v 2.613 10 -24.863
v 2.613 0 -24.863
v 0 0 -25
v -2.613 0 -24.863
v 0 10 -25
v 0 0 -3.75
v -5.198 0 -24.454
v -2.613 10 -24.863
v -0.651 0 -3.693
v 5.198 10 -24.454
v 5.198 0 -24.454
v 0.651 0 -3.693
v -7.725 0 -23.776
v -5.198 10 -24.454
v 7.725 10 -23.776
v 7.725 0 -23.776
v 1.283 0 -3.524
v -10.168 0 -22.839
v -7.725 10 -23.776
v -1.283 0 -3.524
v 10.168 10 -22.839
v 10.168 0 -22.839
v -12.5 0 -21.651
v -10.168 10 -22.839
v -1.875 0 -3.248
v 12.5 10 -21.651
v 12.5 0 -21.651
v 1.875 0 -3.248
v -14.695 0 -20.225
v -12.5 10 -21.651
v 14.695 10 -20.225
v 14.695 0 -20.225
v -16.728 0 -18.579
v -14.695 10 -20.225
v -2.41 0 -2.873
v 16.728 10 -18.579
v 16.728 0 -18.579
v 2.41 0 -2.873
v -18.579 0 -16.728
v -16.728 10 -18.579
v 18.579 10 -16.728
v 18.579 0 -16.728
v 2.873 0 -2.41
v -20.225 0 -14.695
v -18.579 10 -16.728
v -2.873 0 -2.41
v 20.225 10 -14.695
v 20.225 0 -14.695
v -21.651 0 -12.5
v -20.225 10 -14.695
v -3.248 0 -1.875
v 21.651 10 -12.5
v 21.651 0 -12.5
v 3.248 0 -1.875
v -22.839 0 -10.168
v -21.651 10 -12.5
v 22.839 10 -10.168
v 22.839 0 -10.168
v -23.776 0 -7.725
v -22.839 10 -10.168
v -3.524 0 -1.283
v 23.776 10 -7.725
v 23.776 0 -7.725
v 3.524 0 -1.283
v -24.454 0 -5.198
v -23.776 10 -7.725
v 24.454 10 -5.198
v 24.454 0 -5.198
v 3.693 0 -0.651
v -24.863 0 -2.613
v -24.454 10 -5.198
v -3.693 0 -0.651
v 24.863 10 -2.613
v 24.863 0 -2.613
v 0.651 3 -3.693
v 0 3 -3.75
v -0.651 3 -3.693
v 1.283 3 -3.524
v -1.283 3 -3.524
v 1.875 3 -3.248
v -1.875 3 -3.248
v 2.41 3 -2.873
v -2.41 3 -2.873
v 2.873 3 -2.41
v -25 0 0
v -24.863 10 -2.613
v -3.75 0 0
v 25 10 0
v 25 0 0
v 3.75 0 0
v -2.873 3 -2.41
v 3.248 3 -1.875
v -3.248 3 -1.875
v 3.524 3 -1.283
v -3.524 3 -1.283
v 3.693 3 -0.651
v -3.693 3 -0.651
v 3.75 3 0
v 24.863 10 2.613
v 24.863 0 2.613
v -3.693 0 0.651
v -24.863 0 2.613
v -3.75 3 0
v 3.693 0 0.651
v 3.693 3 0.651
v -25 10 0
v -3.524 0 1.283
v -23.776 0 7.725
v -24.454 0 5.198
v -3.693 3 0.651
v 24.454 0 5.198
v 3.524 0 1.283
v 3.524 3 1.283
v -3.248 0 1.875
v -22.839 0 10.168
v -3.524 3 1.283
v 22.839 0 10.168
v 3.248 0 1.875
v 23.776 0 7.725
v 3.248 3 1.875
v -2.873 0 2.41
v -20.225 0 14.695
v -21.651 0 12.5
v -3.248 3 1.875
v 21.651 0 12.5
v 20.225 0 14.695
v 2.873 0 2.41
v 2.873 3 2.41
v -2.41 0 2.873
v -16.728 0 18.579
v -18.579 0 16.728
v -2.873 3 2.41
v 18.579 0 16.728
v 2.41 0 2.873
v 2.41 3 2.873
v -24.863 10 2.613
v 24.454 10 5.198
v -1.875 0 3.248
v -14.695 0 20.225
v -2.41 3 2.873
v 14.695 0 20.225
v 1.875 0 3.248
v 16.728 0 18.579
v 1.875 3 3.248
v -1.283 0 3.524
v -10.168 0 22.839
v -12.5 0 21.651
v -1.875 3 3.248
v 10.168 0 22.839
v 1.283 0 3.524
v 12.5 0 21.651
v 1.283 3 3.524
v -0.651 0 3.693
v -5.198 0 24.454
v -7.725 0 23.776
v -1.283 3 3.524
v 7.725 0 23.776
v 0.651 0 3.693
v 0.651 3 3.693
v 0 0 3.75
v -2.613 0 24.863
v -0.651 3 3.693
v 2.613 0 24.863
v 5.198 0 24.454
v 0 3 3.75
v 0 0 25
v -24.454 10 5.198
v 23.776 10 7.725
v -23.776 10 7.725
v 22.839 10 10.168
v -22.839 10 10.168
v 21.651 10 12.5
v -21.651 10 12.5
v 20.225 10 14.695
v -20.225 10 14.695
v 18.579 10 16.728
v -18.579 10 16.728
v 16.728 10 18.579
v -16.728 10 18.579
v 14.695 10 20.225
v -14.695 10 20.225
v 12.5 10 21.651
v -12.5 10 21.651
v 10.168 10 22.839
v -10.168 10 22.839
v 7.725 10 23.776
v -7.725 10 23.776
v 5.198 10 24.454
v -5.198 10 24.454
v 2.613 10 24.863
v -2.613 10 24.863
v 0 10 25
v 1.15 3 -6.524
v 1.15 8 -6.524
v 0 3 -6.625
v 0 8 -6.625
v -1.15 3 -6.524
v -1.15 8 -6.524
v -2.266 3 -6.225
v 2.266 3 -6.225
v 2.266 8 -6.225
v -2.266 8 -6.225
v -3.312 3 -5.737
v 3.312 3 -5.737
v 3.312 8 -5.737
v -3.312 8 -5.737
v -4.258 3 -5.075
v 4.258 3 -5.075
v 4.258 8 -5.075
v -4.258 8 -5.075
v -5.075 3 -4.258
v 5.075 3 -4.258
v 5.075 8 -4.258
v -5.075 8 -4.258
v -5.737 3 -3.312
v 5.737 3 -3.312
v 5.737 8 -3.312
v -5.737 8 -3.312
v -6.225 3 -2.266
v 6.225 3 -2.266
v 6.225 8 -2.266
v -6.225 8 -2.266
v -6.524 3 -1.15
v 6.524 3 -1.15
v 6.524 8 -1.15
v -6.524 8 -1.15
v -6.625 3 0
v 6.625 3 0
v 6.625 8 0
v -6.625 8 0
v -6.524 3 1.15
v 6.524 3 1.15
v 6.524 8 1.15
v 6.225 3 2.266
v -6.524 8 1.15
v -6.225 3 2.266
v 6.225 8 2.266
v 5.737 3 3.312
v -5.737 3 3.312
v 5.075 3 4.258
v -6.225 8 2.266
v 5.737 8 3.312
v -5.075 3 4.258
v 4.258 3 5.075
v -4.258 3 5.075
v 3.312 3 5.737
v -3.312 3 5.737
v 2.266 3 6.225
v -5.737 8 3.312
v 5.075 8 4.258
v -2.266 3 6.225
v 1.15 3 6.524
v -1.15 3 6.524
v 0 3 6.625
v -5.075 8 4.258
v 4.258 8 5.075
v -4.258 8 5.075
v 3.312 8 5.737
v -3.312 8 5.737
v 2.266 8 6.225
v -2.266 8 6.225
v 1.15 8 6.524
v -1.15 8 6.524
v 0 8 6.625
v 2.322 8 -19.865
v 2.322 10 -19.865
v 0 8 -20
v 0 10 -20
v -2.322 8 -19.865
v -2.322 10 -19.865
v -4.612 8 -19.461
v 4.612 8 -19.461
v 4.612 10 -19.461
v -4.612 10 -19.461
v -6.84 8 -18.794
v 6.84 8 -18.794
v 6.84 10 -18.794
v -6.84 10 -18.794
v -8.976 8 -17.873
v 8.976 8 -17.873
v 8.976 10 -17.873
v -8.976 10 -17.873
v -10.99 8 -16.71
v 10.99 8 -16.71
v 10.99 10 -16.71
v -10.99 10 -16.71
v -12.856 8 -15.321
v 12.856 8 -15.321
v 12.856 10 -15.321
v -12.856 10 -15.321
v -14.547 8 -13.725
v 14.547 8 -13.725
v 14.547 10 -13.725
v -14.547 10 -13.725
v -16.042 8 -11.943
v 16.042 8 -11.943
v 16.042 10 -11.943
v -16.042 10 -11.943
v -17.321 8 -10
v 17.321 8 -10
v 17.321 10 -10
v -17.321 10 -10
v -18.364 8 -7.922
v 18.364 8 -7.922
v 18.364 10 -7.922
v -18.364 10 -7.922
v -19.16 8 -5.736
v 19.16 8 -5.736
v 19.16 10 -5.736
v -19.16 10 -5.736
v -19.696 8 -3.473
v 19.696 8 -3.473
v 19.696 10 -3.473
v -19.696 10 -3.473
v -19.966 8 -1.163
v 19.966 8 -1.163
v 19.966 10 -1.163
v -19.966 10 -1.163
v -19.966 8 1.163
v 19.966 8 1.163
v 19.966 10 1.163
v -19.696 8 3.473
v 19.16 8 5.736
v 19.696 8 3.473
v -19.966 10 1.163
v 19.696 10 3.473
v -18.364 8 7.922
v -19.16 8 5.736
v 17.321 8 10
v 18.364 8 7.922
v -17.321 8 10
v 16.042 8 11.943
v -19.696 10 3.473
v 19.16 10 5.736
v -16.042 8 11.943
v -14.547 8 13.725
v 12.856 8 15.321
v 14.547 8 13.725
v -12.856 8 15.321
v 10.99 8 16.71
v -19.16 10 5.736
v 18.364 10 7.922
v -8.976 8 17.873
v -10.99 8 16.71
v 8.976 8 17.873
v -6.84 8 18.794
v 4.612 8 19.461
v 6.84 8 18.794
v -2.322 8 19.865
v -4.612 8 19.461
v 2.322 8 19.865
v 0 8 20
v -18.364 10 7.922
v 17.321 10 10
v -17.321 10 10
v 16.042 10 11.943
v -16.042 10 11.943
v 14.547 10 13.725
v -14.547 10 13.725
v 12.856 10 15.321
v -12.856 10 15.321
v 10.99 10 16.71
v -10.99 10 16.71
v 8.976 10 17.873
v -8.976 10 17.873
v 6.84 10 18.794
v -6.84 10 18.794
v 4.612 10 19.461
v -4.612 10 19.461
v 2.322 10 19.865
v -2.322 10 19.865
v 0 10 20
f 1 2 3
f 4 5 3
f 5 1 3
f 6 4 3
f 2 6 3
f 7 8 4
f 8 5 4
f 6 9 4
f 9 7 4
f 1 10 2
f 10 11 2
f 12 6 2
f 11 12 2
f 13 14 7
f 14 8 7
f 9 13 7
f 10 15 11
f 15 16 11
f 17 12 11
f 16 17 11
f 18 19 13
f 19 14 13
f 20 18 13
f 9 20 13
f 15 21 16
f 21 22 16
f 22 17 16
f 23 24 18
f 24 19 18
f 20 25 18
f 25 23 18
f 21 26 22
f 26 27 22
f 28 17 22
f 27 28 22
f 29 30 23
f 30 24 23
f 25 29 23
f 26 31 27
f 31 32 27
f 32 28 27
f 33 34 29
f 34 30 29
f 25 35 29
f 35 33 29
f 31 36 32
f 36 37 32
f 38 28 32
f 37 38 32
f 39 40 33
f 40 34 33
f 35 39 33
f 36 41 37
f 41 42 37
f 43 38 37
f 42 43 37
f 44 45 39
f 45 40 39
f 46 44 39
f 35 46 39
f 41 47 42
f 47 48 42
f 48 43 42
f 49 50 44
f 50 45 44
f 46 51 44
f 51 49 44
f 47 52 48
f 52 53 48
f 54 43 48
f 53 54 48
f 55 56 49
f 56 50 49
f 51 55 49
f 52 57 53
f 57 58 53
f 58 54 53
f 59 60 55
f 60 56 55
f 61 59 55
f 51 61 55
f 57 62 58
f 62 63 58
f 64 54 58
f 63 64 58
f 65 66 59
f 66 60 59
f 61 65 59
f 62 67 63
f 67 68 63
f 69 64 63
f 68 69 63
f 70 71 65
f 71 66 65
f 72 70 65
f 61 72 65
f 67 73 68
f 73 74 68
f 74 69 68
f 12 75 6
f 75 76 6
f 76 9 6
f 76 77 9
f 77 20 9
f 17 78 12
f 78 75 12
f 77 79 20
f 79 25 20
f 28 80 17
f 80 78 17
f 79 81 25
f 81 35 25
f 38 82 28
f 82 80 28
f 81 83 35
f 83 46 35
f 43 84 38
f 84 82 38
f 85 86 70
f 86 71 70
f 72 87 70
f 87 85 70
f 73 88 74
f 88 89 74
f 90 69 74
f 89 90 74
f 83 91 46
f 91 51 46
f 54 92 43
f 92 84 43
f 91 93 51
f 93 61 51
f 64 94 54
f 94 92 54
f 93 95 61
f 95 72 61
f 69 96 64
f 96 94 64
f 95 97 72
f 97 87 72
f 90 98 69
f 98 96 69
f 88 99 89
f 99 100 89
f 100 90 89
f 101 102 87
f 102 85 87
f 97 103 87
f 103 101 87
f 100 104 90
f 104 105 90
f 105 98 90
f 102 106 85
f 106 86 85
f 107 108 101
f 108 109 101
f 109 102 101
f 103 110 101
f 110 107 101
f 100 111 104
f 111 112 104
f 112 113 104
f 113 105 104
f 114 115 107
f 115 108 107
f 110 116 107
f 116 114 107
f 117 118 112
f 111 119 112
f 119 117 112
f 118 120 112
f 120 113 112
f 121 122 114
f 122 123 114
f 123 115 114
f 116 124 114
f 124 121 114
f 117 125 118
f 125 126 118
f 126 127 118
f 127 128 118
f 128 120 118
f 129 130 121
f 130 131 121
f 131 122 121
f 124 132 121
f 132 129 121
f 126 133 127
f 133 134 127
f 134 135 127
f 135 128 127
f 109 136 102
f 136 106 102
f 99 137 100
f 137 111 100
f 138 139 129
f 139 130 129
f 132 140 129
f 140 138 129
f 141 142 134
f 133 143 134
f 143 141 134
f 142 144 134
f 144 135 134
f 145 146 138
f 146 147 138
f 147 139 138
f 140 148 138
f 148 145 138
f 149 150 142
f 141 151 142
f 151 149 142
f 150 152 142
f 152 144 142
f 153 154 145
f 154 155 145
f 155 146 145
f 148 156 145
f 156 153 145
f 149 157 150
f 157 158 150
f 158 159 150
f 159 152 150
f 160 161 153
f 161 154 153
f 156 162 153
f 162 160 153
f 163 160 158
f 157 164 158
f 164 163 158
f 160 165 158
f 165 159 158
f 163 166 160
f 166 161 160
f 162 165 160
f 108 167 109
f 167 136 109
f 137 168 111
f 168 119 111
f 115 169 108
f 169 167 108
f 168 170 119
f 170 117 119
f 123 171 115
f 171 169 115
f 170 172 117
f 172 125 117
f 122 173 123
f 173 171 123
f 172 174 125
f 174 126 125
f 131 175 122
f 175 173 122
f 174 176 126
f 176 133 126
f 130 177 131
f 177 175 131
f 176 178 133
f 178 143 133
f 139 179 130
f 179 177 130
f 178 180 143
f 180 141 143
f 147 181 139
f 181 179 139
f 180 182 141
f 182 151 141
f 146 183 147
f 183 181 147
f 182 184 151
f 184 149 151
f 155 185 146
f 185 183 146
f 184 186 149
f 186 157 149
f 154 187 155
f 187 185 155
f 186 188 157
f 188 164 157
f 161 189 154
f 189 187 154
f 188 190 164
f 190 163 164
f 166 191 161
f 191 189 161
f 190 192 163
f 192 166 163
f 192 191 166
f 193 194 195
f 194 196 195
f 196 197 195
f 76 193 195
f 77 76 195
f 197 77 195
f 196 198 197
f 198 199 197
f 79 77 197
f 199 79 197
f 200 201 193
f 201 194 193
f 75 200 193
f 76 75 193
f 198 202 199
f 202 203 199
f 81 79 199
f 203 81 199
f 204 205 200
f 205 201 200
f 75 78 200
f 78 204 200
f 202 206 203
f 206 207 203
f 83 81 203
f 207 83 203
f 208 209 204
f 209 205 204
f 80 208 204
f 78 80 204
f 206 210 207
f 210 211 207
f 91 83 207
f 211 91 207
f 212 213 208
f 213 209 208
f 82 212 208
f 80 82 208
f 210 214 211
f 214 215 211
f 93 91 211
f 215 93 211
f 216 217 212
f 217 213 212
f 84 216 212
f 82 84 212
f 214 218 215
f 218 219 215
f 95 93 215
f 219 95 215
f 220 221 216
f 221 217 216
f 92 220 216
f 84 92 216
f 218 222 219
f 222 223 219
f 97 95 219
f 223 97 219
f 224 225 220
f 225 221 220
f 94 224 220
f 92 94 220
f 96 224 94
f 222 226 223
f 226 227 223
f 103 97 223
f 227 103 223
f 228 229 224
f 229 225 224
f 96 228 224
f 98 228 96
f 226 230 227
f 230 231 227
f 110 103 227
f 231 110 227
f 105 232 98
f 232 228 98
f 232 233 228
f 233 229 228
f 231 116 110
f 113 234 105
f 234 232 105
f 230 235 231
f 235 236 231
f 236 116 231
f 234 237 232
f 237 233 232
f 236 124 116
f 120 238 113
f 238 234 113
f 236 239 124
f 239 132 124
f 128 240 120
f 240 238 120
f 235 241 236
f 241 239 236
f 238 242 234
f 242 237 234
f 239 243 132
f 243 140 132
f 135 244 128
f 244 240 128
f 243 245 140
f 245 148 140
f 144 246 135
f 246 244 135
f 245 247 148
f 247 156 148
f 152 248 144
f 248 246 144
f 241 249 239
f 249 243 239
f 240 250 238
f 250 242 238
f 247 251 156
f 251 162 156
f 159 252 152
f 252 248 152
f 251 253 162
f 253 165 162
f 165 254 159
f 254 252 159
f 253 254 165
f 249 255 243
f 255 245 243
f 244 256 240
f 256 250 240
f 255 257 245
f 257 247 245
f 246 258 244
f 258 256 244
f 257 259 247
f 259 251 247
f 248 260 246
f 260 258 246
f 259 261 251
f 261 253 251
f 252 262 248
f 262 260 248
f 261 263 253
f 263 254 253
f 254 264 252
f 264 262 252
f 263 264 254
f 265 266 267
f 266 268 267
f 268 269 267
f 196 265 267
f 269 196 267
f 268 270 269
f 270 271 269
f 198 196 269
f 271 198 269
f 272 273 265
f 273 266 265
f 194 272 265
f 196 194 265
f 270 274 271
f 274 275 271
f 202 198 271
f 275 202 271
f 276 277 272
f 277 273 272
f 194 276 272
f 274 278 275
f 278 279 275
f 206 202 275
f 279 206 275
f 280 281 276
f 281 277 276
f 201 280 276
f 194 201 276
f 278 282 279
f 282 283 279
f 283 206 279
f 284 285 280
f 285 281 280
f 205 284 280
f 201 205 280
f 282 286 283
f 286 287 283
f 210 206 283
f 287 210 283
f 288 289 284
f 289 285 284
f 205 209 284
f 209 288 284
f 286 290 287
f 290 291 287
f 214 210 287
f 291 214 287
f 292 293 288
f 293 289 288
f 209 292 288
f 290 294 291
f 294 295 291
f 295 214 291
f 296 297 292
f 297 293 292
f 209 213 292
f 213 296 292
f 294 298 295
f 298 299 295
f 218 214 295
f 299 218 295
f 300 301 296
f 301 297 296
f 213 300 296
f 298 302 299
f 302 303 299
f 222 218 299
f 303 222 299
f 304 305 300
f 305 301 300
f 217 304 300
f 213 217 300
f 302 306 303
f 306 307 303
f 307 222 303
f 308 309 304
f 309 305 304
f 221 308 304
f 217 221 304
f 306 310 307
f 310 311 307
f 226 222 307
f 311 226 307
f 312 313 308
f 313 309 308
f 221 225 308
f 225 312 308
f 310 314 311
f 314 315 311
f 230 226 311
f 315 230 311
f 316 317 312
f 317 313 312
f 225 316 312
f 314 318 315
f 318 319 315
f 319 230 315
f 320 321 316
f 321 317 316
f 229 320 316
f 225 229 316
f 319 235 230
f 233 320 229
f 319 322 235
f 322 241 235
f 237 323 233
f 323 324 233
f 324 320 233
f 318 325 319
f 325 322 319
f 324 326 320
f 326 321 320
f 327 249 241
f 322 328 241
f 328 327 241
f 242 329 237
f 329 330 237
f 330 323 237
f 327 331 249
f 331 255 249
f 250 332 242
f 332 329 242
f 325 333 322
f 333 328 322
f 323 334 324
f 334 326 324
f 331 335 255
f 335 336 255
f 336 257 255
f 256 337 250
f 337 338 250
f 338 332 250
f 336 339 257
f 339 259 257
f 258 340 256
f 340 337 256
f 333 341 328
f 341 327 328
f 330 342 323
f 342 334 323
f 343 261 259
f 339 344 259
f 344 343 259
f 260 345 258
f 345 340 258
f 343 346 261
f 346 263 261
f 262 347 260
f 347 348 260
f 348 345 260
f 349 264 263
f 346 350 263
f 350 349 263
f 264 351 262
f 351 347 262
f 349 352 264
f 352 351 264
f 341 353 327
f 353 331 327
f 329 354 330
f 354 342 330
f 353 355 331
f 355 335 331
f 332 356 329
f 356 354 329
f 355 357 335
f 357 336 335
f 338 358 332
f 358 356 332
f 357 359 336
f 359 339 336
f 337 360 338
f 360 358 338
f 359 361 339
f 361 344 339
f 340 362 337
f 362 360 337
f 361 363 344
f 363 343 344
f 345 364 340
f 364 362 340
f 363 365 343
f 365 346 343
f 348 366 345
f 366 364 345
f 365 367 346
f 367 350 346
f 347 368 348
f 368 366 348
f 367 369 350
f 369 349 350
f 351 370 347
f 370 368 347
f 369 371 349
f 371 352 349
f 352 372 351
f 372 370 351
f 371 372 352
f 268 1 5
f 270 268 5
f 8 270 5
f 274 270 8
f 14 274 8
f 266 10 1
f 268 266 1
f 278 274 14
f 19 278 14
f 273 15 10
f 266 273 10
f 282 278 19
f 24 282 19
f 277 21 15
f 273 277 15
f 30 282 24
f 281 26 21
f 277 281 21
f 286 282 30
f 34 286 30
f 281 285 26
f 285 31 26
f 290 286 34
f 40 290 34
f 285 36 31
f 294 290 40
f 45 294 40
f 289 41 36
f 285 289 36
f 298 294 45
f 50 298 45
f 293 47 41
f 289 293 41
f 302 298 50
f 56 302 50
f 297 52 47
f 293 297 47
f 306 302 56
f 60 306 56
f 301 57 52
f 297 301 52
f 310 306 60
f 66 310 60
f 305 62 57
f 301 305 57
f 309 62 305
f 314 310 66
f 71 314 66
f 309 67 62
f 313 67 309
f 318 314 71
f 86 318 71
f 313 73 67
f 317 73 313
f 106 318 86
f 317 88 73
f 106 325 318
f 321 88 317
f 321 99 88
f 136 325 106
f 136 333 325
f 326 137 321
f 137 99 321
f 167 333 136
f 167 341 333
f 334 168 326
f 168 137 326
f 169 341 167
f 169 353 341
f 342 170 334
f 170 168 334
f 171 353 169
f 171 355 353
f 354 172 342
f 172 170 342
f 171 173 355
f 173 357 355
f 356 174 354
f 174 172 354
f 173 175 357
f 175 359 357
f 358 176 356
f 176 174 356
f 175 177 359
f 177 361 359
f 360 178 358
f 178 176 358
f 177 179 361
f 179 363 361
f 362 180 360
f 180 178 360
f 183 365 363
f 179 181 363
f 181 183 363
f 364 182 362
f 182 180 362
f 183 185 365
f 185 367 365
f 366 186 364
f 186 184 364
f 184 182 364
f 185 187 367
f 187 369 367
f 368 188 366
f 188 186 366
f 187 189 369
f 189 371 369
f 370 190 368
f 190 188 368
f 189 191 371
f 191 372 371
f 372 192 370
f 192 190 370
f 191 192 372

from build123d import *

# Parameters (mm, degrees)
SKETCH1_R               = 25
BOSS_EXTRUDE1_DEPTH     = 10
SKETCH2_R               = 20
CUT_EXTRUDE1_DEPTH      = 2
SKETCH3_R               = 6.625
CUT_EXTRUDE2_DEPTH      = 5
SKETCH4_R               = 3.75
CUT_EXTRUDE4_DEPTH      = 8
CUT_EXTRUDE4_DEPTH_BACK = 4


with BuildPart() as part:
    # Sketch1 → Boss-Extrude1 (new body)
    with BuildSketch(Plane(origin=(0, 0, 0), x_dir=(1, 0, 0), z_dir=(0, 1, 0))):
        Circle(SKETCH1_R)
    extrude(amount=BOSS_EXTRUDE1_DEPTH)

    # Sketch2 → Cut-Extrude1 (cut)
    with BuildSketch(Plane(origin=(0, 10, 0), x_dir=(1, 0, 0), z_dir=(0, 1, 0))):
        Circle(SKETCH2_R)
    extrude(amount=-CUT_EXTRUDE1_DEPTH, mode=Mode.SUBTRACT)

    # Sketch3 → Cut-Extrude2 (cut)
    with BuildSketch(Plane(origin=(0, 8, 0), x_dir=(1, 0, 0), z_dir=(0, 1, 0))):
        Circle(SKETCH3_R)
    extrude(amount=-CUT_EXTRUDE2_DEPTH, mode=Mode.SUBTRACT)

    # Sketch4 → Cut-Extrude4 (cut, two sides)
    with BuildSketch(Plane(origin=(0, 3, 0), x_dir=(1, 0, 0), z_dir=(0, 1, 0))) as cut_extrude4_sk:
        Circle(SKETCH4_R)
    extrude(amount=CUT_EXTRUDE4_DEPTH, mode=Mode.SUBTRACT)
    extrude(cut_extrude4_sk.sketch, amount=-CUT_EXTRUDE4_DEPTH_BACK, mode=Mode.SUBTRACT)


solid = part.part
